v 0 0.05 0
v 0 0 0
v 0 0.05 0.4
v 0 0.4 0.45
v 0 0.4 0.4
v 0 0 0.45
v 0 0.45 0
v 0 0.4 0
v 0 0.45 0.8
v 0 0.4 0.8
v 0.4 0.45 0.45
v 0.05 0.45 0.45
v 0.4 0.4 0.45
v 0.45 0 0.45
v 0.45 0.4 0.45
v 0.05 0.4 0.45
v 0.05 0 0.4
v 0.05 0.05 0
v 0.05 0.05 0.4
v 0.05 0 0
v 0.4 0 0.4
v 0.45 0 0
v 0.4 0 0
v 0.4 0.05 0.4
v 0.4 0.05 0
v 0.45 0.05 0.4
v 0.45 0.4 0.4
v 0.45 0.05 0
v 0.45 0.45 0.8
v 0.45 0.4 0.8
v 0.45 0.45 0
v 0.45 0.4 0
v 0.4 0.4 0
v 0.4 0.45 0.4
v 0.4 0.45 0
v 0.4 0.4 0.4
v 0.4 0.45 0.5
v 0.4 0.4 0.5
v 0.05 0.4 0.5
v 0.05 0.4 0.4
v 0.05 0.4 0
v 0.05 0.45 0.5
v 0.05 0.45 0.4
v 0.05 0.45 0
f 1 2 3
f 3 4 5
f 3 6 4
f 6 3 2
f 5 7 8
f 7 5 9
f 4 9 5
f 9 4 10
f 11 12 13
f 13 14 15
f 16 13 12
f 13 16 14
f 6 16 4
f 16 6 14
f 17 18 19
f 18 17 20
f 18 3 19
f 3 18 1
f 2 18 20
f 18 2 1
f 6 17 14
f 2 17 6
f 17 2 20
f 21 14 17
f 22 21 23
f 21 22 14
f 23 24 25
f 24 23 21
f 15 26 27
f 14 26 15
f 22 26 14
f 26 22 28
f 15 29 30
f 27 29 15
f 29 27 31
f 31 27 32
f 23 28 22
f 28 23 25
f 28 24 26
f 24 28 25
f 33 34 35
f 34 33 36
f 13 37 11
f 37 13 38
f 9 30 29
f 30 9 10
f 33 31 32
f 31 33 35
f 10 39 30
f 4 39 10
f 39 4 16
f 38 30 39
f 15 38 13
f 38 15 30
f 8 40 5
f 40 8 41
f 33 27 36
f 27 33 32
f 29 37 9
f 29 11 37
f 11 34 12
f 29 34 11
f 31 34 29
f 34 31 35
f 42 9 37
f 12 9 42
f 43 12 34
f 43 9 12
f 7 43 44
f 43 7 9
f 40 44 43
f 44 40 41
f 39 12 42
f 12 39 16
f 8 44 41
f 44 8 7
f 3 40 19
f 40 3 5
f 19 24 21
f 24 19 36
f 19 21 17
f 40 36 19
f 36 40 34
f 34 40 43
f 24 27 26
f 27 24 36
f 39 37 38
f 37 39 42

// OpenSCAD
module sedia() {
    cube([0.05,0.05,0.45]);
    translate([0.40,0,0]) cube([0.05,0.05,0.45]);
    translate([0.40,0.40,0]) cube([0.05,0.05,0.80]);
    translate([0,0.40,0]) cube([0.05,0.05,0.80]);
    
    translate([0,0,0.40]) cube([0.45,0.45,0.05]);
    
    translate([0,0.40,0.50]) cube([0.45,0.05,0.30]);
}

sedia();
